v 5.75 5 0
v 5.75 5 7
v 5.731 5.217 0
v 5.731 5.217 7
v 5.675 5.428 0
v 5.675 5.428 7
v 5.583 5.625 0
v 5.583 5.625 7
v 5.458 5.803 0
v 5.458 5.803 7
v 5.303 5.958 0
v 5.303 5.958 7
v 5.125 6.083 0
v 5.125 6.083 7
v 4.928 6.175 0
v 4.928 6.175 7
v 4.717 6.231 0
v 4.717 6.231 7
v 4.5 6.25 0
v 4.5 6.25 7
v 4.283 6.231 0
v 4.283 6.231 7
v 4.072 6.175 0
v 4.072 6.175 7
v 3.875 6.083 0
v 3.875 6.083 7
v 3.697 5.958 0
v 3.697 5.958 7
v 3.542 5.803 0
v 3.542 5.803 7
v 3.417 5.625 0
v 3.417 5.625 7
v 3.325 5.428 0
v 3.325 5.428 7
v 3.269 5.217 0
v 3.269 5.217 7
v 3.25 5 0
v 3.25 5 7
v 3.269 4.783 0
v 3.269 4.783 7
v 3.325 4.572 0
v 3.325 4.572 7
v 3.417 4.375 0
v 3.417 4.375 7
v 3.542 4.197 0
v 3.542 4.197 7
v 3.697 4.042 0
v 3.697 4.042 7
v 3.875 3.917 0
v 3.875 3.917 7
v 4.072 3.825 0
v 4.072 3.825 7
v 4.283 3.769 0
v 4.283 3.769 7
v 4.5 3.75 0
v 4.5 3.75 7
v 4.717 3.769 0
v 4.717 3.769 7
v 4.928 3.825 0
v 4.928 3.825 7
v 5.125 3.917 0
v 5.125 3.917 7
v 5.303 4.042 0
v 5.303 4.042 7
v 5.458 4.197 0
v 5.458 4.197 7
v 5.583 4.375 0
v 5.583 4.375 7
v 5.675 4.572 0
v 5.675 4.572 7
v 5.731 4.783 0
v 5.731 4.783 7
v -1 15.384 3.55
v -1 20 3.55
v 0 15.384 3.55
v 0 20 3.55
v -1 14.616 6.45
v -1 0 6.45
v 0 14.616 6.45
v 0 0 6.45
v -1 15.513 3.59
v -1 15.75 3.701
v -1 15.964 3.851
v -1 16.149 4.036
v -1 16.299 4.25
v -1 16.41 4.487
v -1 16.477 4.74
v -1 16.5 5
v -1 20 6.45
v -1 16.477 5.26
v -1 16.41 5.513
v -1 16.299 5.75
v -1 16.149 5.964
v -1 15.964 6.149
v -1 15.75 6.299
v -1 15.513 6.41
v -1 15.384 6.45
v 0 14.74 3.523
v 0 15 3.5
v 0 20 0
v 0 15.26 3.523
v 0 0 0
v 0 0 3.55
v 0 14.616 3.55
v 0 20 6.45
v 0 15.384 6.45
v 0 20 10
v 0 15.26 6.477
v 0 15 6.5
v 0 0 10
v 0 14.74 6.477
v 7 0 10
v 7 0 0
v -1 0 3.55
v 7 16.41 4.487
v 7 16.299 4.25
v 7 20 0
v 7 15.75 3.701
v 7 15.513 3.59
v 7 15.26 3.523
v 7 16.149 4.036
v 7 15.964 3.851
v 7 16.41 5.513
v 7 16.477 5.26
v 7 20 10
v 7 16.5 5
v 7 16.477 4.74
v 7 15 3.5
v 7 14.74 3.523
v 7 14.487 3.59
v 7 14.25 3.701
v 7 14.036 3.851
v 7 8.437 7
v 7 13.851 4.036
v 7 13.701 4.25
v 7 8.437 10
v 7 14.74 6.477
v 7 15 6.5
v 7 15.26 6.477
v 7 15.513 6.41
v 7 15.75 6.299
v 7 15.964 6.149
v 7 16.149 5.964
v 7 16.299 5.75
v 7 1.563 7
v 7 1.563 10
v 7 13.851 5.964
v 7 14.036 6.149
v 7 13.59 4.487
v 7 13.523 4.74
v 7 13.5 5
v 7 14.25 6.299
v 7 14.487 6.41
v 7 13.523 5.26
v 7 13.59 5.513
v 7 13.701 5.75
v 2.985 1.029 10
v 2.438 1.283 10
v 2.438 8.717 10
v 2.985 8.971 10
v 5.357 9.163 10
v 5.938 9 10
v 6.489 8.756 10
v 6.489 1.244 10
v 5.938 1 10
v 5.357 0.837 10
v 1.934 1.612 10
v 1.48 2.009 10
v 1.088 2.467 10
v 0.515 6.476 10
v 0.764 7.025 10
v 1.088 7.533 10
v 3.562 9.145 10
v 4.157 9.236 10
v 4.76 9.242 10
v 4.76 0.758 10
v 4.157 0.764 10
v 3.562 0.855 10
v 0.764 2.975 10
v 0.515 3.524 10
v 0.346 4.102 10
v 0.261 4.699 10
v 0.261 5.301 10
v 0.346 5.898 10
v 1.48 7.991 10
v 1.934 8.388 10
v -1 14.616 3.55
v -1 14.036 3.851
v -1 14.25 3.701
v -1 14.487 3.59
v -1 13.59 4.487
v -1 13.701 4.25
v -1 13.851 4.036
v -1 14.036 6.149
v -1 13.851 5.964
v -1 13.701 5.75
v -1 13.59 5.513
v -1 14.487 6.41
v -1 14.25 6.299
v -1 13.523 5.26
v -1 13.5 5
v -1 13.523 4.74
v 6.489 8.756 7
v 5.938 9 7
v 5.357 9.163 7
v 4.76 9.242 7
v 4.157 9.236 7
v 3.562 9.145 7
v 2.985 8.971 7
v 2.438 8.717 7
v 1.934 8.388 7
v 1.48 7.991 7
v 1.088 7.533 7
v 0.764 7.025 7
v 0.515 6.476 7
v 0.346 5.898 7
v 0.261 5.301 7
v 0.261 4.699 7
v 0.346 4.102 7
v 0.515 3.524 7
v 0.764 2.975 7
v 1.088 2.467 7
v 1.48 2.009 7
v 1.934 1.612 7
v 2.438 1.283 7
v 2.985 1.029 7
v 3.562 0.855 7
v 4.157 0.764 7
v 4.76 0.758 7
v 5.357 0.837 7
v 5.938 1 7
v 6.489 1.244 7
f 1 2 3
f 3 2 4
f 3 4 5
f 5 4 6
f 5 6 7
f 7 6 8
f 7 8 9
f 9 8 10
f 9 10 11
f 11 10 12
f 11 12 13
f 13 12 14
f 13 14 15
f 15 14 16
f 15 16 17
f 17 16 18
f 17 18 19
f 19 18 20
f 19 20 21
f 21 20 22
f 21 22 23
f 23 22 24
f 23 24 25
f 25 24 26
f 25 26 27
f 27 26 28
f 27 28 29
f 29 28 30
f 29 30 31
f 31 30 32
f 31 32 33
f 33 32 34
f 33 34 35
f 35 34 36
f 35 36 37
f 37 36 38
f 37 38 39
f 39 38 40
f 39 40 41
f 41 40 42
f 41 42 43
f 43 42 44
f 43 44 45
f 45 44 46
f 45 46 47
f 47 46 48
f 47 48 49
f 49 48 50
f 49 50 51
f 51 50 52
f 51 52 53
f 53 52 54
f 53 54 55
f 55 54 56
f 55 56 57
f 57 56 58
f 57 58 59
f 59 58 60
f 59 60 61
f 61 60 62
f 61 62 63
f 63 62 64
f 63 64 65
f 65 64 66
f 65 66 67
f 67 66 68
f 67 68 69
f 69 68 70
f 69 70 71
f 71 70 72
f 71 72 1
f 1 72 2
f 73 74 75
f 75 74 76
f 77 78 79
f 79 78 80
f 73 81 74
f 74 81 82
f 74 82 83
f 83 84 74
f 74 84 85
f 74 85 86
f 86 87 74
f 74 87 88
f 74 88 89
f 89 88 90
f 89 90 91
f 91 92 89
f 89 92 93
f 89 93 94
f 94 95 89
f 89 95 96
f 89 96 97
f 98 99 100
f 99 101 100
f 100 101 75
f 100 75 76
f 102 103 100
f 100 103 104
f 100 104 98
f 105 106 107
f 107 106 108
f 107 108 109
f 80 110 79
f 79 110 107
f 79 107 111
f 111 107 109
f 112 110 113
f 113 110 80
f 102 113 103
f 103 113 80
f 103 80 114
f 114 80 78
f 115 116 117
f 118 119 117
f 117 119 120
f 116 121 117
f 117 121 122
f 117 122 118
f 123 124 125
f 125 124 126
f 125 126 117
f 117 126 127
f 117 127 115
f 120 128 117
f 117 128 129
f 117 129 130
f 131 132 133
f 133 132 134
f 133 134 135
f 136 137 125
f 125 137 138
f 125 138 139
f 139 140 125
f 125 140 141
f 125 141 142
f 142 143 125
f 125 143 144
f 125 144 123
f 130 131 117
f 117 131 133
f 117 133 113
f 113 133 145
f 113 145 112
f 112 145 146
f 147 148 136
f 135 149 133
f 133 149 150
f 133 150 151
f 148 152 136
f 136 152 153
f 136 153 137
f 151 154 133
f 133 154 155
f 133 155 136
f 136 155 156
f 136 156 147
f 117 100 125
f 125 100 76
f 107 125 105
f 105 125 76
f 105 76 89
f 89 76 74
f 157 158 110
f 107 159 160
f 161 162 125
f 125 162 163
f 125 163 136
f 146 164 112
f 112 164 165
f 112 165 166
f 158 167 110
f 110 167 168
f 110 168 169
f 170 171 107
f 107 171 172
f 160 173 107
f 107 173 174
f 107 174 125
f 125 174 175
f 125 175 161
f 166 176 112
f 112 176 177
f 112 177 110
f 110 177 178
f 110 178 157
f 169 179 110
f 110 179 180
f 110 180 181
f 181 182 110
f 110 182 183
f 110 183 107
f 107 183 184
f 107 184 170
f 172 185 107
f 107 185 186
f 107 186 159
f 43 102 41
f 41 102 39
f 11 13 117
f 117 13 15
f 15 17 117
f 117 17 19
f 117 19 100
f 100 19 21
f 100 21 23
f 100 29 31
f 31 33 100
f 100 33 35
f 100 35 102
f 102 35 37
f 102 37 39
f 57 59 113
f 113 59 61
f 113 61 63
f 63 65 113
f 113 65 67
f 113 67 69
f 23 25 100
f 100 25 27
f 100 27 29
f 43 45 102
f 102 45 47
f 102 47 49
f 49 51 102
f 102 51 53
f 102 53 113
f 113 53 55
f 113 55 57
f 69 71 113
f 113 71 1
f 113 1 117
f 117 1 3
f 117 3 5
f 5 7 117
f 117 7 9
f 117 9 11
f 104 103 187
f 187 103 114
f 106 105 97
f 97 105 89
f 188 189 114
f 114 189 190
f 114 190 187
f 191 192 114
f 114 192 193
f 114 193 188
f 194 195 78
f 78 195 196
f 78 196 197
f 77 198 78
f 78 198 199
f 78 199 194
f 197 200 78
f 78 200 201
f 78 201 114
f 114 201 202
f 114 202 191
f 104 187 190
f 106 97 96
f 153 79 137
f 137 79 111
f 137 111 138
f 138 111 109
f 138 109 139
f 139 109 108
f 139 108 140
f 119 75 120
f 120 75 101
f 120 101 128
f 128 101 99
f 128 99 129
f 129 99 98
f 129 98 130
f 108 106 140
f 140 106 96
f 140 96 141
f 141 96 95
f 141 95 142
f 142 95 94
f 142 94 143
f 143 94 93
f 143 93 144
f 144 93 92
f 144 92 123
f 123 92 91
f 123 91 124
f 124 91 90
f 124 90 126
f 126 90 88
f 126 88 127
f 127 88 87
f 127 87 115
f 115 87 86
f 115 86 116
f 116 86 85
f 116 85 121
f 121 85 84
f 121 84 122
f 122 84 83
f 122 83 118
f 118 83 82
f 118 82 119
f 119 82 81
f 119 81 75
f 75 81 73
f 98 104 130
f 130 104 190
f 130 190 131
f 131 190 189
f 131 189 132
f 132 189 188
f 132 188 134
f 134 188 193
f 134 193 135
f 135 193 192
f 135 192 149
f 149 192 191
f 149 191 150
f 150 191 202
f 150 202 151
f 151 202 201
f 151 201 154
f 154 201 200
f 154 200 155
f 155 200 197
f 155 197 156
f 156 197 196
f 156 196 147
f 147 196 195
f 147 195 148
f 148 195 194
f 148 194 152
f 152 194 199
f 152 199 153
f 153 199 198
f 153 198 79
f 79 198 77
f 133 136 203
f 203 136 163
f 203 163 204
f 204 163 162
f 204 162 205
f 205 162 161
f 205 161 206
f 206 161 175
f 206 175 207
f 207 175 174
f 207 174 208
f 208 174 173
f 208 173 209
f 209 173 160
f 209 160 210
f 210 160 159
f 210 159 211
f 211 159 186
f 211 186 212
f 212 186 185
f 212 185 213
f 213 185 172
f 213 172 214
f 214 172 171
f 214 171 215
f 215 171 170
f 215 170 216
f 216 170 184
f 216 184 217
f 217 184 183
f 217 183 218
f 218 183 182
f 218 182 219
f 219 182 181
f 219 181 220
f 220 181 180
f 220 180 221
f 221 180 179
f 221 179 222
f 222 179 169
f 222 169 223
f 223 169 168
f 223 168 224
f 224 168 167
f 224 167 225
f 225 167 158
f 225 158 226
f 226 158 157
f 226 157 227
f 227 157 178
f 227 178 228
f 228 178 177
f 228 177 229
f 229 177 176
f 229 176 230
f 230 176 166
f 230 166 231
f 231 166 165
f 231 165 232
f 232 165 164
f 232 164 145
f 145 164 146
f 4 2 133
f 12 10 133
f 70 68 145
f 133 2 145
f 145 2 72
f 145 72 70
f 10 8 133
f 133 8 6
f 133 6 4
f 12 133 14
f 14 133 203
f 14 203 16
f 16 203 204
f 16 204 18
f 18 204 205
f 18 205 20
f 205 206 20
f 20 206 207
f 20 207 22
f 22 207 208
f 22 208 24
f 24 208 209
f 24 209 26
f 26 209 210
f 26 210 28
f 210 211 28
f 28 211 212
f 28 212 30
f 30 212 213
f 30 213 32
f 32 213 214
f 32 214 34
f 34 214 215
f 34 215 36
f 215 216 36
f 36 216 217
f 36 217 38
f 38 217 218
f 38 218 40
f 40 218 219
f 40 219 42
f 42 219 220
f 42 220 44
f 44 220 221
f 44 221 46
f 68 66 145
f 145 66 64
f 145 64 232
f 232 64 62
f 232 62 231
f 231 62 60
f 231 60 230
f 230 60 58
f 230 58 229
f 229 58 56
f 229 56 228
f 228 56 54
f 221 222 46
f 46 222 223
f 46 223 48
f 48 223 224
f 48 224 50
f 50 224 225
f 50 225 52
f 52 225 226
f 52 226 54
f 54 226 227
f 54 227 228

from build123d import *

# Parameters (mm, degrees)
ESQUISSE1_W                      = 7
ESQUISSE1_H                      = 20
MAIN_DEPTH                       = 10
ESQUISSE4_W                      = 2.9
ESQUISSE4_H                      = 20
MAKERBEAMFIXVERTICAL_DEPTH       = 1
ESQUISSE2_R                      = 1.5
MAKERBEAMVERTICALHOLE_DEPTH      = 2
MAKERBEAMVERTICALHOLE_DEPTH_BACK = 8
SKETCH1_R                        = 1.25
CUT_EXTRUDE1_DEPTH               = 11
SKETCH2_R                        = 4.25
CUT_EXTRUDE2_DEPTH               = 3


with BuildPart() as part:
    # Esquisse1 → Main (new body)
    with BuildSketch(Plane.XY):
        with Locations((3.5, 10)):
            Rectangle(ESQUISSE1_W, ESQUISSE1_H)
    extrude(amount=MAIN_DEPTH)

    # Esquisse4 → MakerBeamFixVertical (add)
    with BuildSketch(Plane.ZY):
        with Locations((5, 10)):
            Rectangle(ESQUISSE4_W, ESQUISSE4_H)
    extrude(amount=MAKERBEAMFIXVERTICAL_DEPTH)

    # Esquisse2 → MakerBeamVerticalHole (cut, two sides)
    with BuildSketch(Plane.ZY) as makerbeamverticalhole_sk:
        with Locations((5, 15)):
            Circle(ESQUISSE2_R)
    extrude(amount=MAKERBEAMVERTICALHOLE_DEPTH, mode=Mode.SUBTRACT)
    extrude(makerbeamverticalhole_sk.sketch, amount=-MAKERBEAMVERTICALHOLE_DEPTH_BACK, mode=Mode.SUBTRACT)

    # Sketch1 → Cut-Extrude1 (cut, through all)
    with BuildSketch(Plane.XY.offset(10)):
        with Locations((4.5, 5)):
            Circle(SKETCH1_R)
    extrude(amount=-CUT_EXTRUDE1_DEPTH, mode=Mode.SUBTRACT)

    # Sketch2 → Cut-Extrude2 (cut)
    with BuildSketch(Plane.XY.offset(10)):
        with Locations((4.5, 5)):
            Circle(SKETCH2_R)
    extrude(amount=-CUT_EXTRUDE2_DEPTH, mode=Mode.SUBTRACT)


solid = part.part
